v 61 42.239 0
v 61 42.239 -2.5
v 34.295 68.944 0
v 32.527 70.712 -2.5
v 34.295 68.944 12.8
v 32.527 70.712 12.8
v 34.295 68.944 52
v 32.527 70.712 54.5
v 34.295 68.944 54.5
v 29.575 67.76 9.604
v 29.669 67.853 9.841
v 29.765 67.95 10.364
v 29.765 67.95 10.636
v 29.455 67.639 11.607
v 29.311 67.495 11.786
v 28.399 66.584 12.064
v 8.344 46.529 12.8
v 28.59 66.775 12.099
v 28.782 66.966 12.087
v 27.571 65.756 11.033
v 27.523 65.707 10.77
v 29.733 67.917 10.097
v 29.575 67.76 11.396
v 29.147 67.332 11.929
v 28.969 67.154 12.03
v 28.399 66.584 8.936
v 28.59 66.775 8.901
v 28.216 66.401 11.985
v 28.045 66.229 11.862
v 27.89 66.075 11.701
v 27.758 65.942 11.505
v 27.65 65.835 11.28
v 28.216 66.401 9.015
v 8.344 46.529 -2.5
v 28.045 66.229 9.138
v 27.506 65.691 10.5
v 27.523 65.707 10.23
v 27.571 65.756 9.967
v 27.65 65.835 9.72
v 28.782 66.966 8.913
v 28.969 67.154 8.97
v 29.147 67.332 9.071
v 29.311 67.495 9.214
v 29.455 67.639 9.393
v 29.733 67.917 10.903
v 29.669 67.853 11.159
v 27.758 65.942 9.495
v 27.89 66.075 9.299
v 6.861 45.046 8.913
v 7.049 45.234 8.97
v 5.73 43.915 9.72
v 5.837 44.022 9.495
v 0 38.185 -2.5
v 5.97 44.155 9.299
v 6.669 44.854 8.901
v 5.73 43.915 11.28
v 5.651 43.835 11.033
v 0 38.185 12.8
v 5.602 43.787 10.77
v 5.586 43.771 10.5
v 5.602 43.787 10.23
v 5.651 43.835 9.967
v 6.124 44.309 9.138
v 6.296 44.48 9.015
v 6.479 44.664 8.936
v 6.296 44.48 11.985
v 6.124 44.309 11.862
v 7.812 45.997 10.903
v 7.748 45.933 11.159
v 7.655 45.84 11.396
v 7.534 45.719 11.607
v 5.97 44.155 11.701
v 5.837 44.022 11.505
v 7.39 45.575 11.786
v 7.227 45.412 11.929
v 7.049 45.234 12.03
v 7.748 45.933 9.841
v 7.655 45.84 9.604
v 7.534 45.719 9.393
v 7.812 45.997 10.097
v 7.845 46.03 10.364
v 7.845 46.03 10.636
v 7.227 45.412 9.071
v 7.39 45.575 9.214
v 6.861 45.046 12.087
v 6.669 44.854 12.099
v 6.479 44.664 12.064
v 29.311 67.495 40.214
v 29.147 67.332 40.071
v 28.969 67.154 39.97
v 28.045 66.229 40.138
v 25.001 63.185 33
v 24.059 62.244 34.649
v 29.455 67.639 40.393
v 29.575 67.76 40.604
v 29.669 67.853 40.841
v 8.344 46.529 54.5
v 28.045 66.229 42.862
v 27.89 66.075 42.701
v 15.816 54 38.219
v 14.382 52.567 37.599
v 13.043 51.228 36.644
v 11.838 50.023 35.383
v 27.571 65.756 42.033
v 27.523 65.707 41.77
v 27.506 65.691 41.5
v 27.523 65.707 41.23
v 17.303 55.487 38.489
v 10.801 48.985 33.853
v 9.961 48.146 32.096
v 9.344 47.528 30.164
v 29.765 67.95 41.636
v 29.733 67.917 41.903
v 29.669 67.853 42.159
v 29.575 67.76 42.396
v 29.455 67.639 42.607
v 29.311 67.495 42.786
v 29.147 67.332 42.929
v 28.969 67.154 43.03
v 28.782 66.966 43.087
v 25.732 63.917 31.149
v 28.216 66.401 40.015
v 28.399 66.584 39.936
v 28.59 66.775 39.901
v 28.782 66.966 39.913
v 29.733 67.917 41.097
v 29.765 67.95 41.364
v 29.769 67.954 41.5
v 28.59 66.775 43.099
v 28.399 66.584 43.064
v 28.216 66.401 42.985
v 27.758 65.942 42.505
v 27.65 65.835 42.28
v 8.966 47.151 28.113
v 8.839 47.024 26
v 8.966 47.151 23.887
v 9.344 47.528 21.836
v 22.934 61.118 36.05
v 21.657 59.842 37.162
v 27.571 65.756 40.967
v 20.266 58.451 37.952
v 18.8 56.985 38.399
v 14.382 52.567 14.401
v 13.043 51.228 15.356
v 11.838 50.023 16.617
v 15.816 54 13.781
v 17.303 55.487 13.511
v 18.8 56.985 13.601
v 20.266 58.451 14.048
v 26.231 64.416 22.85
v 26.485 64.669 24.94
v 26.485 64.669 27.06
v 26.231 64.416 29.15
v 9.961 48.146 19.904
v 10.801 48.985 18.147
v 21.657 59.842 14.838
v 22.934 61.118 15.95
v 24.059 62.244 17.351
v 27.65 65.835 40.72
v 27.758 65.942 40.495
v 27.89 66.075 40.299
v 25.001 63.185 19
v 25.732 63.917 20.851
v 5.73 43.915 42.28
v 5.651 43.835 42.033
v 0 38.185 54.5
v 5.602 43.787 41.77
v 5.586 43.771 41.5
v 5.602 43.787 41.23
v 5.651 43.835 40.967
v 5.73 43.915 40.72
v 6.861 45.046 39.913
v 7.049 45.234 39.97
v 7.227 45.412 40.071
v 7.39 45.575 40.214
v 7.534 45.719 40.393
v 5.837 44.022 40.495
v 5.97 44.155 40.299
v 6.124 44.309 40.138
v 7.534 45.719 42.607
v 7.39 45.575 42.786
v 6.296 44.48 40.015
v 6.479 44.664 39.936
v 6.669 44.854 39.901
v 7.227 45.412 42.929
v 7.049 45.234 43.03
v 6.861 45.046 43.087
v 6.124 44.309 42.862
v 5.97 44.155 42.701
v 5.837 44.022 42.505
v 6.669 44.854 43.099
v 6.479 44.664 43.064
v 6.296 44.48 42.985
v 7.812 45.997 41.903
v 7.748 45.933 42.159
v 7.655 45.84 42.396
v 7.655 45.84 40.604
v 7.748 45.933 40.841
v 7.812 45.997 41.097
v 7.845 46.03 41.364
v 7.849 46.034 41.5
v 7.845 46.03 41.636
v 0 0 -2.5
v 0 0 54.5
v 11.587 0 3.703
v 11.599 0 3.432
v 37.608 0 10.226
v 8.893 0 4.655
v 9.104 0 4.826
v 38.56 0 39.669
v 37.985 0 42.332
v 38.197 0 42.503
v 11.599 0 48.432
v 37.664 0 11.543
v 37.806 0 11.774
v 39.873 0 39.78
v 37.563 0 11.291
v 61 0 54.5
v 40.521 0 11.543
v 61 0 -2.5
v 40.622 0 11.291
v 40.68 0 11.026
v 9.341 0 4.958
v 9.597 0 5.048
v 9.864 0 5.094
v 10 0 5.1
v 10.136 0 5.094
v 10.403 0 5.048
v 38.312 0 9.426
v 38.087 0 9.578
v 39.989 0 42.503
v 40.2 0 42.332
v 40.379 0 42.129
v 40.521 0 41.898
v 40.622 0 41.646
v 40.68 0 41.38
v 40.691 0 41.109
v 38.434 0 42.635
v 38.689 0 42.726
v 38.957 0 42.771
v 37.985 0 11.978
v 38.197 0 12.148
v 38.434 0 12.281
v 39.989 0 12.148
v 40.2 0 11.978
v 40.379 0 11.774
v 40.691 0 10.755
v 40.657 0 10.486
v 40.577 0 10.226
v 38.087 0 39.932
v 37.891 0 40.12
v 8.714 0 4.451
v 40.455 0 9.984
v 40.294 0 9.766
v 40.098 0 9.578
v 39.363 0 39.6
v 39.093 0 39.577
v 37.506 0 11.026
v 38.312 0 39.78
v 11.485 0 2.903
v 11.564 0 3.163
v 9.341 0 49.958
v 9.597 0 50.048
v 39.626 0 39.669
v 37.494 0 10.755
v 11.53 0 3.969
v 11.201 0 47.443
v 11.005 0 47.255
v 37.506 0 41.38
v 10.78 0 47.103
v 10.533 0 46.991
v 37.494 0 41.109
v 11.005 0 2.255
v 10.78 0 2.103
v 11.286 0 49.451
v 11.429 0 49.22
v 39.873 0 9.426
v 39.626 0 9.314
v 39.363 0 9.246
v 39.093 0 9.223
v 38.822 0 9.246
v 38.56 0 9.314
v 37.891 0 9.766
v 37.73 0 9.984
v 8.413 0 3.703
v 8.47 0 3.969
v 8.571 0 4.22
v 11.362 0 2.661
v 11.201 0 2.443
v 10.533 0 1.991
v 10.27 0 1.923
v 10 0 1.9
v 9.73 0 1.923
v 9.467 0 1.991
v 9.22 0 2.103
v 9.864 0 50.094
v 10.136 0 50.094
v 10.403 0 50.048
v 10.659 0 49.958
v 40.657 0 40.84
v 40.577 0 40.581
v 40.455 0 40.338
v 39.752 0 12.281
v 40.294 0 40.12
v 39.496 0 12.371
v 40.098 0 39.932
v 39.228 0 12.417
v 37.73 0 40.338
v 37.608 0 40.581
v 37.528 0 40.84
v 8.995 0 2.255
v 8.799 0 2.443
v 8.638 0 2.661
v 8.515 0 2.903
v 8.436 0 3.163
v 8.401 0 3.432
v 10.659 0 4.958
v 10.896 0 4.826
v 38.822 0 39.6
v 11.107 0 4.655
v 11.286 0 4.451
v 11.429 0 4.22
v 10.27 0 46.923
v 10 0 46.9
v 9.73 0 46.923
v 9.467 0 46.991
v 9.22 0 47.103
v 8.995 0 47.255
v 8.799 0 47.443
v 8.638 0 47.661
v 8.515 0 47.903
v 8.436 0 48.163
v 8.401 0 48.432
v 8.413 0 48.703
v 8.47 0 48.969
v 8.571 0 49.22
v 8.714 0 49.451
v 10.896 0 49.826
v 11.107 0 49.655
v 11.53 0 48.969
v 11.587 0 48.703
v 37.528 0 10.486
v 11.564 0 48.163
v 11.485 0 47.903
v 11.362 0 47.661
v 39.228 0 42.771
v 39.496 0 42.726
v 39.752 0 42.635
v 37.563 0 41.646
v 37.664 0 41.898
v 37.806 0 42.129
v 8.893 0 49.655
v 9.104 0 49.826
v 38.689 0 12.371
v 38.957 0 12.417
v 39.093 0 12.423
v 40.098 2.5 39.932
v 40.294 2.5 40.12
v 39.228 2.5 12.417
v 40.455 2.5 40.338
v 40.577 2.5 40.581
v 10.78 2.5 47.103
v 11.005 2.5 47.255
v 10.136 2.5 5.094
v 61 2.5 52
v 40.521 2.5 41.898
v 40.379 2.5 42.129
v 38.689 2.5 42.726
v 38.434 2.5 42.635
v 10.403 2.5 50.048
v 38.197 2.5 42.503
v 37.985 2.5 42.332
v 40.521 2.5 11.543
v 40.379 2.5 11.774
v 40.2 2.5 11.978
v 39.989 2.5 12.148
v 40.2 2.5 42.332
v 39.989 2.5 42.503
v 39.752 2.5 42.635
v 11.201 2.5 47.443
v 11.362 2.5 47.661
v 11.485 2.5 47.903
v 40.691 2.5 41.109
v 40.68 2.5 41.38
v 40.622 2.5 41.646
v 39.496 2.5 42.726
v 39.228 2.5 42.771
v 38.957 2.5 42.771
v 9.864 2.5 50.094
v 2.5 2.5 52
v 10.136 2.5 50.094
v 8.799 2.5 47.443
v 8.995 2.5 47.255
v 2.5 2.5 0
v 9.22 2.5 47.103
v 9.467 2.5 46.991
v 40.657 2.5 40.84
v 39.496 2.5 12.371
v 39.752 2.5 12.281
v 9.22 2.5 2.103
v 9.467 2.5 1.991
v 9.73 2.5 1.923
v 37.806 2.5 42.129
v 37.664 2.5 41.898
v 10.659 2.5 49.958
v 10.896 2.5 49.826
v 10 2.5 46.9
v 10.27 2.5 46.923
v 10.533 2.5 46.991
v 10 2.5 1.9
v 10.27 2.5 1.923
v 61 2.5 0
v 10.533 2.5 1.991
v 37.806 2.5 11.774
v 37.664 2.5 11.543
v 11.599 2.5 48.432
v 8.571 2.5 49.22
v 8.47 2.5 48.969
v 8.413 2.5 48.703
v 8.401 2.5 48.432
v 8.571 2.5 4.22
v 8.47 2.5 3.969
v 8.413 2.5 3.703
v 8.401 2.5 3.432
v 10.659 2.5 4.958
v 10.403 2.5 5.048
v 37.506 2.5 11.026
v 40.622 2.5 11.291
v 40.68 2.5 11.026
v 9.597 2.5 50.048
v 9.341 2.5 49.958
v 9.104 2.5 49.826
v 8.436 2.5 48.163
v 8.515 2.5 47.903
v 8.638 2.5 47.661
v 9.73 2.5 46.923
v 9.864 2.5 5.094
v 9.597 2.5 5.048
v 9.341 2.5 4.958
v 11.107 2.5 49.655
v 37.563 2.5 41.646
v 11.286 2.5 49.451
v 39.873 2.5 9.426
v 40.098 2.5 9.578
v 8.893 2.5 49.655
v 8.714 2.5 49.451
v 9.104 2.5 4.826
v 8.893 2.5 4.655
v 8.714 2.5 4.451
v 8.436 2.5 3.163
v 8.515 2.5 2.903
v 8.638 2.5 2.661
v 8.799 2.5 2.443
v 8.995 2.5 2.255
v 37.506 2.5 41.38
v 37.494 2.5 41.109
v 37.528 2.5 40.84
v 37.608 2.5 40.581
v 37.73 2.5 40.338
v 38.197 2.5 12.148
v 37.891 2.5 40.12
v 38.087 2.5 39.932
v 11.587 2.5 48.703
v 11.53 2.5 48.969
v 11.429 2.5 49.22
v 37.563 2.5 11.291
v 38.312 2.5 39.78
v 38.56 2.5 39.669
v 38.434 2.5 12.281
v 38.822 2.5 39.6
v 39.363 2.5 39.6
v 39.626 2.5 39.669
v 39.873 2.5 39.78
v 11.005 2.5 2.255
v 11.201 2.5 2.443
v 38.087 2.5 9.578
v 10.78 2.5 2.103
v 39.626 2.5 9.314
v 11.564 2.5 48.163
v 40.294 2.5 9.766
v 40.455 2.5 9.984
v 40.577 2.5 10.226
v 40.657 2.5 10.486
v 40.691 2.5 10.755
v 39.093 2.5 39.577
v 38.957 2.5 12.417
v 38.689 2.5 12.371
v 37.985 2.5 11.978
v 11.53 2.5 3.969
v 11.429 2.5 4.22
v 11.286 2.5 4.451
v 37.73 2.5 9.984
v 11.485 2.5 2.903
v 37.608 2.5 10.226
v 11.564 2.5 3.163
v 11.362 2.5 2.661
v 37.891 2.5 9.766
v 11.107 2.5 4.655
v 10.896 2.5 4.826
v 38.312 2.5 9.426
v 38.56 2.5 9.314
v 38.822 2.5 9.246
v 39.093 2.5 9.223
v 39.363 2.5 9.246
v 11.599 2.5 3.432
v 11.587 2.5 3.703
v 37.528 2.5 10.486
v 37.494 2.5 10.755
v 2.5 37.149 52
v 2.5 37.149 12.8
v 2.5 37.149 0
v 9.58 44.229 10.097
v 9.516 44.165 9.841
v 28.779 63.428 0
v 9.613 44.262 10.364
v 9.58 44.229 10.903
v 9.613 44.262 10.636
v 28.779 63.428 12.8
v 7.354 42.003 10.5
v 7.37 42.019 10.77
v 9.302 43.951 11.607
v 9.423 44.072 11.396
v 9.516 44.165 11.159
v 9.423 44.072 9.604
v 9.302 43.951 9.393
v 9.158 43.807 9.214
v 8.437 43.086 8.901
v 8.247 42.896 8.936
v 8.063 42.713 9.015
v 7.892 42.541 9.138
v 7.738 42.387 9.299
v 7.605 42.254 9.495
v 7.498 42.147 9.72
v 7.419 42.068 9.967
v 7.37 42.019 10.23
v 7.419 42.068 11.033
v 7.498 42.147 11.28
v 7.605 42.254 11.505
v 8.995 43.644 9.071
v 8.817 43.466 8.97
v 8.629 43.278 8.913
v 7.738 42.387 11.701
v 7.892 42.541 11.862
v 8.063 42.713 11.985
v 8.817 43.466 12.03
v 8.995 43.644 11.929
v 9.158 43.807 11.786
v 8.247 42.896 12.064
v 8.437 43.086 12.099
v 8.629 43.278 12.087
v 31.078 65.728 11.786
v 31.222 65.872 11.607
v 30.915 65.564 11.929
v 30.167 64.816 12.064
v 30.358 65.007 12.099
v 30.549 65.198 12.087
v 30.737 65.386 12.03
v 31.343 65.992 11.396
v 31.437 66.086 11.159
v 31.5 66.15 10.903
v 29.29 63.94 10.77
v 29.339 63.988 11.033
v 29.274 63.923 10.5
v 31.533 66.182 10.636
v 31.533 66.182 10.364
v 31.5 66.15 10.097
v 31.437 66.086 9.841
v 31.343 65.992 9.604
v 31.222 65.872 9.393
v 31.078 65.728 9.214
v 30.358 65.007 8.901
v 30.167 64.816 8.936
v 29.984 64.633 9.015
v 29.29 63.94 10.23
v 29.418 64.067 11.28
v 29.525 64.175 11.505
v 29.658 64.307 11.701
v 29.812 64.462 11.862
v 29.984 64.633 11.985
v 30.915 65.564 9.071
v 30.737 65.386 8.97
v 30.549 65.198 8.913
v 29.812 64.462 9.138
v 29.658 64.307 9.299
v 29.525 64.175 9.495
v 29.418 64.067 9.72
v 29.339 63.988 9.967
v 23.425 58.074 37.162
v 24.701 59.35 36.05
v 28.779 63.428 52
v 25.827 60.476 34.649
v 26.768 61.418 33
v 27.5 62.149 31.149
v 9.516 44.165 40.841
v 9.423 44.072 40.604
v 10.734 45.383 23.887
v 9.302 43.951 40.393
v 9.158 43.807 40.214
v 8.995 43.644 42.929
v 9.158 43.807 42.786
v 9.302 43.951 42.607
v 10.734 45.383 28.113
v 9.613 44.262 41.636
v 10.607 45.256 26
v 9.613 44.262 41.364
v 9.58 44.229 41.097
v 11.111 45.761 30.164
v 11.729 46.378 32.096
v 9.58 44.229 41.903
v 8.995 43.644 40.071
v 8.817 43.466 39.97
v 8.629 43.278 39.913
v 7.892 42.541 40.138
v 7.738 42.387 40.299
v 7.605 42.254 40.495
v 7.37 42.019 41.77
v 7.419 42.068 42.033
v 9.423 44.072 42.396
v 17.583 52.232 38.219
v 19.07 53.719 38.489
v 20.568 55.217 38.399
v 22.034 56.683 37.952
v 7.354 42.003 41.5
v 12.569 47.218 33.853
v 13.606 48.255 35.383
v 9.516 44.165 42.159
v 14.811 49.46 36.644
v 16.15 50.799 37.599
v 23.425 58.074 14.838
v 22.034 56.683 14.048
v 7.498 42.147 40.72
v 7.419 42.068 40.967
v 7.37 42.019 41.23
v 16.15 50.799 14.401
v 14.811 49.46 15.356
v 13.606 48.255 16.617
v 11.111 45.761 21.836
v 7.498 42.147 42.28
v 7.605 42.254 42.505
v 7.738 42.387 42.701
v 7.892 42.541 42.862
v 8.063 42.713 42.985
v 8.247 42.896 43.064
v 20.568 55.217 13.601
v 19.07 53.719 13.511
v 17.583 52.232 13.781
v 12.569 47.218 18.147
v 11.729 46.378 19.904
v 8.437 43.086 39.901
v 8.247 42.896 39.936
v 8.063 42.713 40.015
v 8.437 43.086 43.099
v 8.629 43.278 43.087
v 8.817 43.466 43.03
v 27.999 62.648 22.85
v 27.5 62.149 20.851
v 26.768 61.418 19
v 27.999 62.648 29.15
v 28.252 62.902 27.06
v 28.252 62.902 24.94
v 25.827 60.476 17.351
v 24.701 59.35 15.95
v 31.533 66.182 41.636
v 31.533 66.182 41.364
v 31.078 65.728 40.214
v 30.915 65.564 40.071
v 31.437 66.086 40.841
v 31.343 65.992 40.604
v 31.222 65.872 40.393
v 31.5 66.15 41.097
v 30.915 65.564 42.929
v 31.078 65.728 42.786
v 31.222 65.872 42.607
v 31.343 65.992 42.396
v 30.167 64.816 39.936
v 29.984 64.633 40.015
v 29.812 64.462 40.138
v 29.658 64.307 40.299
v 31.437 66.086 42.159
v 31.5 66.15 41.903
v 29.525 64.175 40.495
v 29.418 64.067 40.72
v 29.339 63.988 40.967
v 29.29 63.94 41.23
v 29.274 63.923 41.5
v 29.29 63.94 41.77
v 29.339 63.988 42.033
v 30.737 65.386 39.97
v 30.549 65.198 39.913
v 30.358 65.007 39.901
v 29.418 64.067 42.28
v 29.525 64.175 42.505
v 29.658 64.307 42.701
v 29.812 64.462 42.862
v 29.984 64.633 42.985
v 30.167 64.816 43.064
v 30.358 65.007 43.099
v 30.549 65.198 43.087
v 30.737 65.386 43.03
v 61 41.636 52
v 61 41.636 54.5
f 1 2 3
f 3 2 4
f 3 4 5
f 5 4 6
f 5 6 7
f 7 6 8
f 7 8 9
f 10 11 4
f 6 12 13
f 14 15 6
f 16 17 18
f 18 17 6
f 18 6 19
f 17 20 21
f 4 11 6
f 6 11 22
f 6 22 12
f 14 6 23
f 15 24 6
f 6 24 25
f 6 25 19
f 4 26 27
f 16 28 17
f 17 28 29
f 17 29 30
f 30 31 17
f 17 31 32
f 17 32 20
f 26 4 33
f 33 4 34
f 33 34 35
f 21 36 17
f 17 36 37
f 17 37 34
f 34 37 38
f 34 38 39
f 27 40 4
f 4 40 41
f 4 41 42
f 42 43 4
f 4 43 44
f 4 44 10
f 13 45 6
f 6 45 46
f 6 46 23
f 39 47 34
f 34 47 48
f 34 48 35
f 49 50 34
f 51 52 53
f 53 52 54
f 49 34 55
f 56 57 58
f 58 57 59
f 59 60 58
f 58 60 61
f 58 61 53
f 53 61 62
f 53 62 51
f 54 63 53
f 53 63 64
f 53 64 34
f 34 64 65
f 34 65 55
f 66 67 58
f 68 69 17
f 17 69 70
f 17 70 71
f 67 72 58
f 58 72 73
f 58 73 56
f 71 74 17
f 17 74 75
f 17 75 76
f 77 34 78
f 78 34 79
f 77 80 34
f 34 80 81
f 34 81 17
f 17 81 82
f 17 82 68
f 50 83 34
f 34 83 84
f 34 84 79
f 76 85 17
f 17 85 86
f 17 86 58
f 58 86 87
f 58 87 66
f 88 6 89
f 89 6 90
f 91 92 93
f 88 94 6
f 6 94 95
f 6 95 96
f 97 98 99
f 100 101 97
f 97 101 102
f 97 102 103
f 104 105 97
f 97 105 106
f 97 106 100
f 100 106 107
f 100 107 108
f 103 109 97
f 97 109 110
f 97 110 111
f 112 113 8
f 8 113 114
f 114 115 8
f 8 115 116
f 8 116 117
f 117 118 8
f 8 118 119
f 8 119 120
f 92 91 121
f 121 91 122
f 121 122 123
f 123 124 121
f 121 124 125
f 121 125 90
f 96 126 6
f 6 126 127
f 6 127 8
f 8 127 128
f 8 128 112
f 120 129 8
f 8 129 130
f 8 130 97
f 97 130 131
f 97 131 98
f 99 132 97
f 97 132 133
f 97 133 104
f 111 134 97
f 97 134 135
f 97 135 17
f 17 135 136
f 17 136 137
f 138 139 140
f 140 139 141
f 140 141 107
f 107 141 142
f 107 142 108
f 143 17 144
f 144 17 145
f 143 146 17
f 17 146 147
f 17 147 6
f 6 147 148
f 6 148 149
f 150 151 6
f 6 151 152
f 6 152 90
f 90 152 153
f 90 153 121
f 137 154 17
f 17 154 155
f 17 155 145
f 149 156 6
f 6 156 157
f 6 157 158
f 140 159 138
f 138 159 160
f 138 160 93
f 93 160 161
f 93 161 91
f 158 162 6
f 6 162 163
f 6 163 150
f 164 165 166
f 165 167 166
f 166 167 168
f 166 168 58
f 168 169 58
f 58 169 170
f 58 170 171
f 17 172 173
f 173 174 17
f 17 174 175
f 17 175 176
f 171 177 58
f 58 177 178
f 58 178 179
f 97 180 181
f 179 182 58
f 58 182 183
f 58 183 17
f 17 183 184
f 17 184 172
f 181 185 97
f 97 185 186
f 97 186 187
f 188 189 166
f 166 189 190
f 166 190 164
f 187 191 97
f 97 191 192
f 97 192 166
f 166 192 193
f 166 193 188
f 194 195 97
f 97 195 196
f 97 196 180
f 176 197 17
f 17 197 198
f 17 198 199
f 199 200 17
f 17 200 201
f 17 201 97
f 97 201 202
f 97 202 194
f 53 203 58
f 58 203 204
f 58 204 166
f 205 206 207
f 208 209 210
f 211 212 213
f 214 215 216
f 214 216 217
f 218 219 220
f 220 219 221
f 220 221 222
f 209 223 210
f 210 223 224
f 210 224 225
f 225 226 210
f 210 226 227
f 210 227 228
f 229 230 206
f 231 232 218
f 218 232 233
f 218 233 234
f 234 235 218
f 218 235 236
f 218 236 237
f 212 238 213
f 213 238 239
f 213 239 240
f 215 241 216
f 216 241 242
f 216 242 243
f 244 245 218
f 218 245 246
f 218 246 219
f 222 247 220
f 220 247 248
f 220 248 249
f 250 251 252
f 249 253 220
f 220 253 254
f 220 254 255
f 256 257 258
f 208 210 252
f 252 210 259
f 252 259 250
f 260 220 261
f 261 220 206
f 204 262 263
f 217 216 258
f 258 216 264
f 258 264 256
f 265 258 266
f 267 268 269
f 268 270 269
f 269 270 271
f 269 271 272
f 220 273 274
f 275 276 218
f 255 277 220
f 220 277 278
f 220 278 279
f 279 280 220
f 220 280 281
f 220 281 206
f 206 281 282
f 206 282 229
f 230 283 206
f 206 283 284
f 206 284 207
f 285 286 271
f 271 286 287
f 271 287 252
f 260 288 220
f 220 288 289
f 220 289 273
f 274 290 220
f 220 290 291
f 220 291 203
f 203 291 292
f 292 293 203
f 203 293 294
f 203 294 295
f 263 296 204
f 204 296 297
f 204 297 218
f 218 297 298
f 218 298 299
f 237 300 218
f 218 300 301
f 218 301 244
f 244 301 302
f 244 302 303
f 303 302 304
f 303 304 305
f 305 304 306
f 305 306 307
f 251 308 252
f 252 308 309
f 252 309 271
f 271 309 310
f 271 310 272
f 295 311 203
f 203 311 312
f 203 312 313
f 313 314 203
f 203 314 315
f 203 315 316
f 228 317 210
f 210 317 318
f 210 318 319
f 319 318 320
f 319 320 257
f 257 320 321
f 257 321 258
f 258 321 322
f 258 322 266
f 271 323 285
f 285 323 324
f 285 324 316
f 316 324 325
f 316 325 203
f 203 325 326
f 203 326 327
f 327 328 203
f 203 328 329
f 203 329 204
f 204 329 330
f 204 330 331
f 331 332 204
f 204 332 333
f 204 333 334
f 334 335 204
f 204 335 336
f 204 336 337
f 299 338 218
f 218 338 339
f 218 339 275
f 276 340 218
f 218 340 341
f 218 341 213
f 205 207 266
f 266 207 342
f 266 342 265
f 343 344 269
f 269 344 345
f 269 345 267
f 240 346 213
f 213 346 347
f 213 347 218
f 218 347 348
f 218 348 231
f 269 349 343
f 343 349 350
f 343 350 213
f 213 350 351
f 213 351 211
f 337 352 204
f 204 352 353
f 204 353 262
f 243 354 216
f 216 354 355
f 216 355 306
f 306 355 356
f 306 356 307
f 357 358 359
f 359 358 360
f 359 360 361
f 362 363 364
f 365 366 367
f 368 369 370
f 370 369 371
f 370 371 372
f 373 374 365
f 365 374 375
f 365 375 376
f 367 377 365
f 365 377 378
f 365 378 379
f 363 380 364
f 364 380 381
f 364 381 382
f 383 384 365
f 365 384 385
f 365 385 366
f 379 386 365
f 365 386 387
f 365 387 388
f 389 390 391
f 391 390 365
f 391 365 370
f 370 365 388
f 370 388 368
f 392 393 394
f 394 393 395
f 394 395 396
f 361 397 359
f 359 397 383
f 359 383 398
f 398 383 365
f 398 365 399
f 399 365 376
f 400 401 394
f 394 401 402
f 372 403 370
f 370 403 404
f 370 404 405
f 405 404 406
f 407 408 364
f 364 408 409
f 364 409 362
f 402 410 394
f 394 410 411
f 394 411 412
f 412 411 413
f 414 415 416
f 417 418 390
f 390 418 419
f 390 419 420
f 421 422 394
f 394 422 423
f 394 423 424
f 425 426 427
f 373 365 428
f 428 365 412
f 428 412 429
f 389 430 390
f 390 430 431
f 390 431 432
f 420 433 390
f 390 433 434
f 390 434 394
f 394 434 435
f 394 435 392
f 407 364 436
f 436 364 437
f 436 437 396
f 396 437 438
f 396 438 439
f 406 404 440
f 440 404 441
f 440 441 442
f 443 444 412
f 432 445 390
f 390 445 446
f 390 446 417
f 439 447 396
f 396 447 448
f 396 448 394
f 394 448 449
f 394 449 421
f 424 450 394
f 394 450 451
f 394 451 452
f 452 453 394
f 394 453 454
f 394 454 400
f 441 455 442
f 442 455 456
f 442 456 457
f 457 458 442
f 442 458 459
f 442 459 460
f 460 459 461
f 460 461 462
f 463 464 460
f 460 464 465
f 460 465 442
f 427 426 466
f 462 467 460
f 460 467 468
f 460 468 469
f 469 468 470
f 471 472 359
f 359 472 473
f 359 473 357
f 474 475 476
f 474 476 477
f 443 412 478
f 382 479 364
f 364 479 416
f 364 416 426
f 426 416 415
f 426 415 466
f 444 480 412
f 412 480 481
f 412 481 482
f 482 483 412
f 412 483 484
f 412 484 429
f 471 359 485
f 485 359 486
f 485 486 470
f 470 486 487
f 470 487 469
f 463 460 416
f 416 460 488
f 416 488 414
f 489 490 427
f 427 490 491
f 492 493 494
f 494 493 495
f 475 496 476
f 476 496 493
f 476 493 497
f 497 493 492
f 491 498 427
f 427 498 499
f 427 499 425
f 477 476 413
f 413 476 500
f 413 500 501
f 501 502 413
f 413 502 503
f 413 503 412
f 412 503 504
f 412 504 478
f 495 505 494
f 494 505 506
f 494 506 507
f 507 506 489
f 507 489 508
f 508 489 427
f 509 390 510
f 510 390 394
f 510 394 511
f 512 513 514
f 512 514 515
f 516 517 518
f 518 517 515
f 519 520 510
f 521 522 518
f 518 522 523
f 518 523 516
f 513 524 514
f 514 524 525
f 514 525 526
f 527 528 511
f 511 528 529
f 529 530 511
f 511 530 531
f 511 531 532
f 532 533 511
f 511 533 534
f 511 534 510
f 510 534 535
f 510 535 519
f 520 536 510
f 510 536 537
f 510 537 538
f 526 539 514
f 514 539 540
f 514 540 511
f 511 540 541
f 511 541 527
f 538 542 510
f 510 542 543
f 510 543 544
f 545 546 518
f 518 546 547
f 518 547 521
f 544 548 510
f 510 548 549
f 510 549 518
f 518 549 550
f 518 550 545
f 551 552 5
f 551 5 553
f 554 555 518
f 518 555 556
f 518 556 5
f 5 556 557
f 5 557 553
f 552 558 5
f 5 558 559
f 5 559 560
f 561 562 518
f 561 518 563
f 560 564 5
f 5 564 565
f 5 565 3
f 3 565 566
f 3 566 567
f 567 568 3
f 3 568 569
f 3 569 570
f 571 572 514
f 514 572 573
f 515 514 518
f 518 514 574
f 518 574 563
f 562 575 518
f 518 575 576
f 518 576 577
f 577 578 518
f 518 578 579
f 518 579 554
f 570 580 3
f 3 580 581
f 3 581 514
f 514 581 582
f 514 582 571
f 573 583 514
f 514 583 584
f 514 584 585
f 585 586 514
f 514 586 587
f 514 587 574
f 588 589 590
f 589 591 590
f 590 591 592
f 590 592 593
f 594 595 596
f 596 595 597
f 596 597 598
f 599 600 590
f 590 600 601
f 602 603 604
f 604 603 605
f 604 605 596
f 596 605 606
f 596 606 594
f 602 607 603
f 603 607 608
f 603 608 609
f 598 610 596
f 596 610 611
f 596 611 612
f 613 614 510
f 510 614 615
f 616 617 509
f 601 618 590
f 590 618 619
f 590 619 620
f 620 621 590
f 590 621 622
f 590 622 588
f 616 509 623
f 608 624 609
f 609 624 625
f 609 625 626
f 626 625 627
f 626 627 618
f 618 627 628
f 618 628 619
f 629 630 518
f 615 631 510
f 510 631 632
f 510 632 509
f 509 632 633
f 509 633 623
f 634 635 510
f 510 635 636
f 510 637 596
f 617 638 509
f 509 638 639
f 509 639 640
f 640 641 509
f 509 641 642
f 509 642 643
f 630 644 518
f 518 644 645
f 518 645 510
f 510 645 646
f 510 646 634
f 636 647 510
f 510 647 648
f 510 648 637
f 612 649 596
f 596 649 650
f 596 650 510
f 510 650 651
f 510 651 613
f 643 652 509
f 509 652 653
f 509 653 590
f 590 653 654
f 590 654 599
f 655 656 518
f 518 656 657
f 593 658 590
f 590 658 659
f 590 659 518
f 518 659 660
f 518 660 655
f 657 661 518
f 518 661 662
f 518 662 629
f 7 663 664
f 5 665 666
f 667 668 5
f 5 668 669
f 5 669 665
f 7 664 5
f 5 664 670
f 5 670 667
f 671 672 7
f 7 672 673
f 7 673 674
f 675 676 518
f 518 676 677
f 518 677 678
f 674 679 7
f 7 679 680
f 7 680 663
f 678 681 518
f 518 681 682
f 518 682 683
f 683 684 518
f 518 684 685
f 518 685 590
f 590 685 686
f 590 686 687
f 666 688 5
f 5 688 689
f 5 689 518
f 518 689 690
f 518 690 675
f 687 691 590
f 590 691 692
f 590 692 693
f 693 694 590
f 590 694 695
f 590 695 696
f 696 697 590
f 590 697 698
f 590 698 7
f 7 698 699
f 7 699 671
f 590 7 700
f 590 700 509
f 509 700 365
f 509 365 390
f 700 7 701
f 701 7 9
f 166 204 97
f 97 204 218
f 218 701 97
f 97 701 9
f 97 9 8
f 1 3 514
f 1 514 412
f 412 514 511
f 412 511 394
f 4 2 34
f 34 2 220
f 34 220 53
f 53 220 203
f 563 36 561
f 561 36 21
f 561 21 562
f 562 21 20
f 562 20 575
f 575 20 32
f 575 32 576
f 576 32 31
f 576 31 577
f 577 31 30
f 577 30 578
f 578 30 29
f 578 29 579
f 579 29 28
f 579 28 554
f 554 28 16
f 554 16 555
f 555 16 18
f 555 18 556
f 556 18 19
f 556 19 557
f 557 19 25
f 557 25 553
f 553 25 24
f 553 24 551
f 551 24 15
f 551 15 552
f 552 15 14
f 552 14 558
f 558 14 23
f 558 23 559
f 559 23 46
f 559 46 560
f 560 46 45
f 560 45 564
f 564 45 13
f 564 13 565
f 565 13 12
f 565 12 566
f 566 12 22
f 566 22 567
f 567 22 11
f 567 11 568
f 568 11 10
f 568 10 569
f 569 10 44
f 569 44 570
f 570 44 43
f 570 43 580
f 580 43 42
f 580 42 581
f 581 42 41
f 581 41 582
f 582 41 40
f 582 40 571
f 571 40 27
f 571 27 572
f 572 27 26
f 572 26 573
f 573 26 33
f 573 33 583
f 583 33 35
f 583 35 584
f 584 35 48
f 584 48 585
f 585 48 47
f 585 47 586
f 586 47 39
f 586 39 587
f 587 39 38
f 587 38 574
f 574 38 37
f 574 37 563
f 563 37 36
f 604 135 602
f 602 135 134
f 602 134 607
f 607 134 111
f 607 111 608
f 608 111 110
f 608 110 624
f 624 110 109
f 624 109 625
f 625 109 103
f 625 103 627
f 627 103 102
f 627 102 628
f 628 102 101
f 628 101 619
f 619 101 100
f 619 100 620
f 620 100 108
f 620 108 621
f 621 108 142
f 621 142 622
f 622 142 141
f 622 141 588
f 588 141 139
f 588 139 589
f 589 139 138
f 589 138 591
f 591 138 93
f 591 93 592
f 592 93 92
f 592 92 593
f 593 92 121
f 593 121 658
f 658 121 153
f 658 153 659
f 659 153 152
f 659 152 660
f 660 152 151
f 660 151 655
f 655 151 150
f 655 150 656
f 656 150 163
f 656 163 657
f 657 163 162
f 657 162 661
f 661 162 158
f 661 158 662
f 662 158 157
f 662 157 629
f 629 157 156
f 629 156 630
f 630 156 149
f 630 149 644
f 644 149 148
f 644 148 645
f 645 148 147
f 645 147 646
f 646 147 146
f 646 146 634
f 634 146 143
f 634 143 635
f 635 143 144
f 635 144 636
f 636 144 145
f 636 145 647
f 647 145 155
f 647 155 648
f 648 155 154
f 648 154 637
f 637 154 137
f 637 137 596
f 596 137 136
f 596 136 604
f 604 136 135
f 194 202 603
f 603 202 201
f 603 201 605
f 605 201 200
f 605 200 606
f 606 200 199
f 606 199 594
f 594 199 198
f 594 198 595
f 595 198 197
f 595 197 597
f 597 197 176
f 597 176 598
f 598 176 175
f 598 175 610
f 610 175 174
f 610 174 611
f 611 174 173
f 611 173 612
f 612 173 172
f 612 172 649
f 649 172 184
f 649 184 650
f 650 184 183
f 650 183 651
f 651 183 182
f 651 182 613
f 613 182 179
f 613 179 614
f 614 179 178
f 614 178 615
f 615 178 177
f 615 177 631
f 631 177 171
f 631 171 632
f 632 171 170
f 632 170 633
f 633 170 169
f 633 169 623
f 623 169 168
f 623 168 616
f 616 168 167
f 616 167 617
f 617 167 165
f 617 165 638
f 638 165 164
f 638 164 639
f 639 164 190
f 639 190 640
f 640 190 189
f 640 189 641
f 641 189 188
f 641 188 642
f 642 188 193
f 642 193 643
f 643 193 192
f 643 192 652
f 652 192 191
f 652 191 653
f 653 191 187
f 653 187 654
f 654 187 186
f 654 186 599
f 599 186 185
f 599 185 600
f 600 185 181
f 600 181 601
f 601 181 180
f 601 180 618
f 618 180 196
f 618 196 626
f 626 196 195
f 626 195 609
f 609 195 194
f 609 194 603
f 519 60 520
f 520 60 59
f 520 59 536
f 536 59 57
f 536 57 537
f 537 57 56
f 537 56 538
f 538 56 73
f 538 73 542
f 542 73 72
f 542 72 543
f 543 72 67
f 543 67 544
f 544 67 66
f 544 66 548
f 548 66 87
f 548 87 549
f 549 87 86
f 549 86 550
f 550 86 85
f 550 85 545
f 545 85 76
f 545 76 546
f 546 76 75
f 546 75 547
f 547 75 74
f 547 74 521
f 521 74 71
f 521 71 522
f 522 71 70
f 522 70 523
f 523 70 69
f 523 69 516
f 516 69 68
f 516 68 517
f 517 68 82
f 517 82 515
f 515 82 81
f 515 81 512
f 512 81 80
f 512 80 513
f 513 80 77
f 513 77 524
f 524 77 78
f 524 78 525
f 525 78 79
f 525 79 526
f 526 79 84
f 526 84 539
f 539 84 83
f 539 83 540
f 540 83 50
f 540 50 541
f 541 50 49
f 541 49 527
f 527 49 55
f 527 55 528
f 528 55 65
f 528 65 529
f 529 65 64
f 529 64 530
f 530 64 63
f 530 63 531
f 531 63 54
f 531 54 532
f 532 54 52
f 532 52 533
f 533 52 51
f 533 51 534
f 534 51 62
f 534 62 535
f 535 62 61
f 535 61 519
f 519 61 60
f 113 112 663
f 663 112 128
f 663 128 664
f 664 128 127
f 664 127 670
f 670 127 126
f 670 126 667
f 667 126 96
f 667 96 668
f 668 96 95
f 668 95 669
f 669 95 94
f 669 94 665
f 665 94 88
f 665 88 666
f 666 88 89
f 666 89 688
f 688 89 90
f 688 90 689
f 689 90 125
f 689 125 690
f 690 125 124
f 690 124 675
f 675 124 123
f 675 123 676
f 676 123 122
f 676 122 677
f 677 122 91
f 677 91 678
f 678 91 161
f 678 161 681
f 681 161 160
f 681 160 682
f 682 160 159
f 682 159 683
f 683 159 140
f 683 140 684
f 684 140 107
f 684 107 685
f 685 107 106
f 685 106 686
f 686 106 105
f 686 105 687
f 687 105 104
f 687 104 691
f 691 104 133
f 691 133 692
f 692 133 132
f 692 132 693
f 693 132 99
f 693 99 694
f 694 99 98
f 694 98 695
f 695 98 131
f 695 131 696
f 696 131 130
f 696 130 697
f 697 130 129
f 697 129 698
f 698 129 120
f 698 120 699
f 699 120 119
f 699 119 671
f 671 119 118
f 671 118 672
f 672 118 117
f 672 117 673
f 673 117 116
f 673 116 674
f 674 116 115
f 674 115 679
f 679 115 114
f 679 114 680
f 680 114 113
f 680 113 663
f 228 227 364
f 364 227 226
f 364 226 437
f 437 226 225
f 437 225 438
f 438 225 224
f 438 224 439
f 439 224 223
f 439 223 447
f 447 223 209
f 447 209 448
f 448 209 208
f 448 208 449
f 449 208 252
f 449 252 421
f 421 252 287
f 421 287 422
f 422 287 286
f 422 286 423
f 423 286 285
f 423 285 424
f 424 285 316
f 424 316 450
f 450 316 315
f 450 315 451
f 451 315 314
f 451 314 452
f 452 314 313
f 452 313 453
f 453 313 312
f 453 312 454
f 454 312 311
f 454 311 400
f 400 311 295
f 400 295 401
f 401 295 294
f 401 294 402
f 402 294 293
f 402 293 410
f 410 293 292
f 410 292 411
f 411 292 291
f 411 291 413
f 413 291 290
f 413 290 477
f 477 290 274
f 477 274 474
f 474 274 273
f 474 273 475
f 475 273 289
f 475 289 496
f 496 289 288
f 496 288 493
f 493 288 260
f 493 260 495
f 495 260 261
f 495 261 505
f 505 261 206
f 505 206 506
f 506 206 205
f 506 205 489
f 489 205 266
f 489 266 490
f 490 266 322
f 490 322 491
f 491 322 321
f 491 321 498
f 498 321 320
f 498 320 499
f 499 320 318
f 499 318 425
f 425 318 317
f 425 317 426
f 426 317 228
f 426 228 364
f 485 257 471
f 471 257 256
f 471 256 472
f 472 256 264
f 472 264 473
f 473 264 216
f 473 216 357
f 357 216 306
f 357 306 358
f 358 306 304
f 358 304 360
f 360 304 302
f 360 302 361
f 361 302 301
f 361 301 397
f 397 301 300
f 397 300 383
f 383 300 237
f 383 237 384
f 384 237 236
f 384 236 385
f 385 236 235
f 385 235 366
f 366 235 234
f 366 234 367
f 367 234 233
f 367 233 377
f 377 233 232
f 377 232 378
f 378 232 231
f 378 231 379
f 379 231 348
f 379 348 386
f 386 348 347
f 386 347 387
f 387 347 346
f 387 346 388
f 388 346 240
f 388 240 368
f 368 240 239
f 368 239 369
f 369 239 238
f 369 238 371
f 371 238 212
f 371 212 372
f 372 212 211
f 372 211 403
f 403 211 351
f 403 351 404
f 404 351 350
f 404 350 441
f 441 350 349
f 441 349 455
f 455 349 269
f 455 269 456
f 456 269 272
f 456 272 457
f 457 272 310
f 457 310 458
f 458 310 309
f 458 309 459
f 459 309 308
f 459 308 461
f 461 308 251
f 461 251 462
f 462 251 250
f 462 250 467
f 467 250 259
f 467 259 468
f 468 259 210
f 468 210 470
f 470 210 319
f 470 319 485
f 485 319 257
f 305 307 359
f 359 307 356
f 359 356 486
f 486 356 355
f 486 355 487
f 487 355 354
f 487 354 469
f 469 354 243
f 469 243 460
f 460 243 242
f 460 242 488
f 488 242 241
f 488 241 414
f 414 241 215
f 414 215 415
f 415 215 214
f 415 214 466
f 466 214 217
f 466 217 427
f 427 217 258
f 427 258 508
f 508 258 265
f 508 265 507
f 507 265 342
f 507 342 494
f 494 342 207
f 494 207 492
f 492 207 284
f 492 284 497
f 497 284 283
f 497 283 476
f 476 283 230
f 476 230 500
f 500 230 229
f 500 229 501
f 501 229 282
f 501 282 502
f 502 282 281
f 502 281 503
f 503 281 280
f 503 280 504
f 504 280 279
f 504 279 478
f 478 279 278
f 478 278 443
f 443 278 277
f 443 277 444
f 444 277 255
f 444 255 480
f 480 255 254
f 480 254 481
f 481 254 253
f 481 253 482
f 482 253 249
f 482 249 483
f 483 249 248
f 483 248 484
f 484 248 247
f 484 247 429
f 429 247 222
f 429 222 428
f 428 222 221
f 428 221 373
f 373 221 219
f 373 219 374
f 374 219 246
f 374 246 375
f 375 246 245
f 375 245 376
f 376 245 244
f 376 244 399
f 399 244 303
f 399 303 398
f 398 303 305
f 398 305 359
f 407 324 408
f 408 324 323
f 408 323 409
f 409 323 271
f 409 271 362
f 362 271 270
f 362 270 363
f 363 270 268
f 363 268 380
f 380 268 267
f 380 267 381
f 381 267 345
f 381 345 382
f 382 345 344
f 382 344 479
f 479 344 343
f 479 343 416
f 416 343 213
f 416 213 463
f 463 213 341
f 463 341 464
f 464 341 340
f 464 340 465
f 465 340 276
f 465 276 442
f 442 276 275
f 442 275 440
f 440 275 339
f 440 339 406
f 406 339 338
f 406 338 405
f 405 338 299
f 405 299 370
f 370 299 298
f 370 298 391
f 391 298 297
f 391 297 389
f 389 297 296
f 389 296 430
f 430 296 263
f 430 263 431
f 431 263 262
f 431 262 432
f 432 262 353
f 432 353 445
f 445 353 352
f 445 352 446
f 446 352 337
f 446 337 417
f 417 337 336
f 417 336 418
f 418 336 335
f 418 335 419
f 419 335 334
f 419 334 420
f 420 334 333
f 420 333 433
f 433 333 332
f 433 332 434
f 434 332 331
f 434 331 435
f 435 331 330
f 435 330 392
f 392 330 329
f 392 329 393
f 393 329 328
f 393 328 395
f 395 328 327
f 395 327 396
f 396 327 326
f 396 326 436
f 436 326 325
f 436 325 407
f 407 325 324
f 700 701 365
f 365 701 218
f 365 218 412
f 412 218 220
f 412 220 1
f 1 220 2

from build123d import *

# Parameters (mm, degrees)
EXTRUDE_1_DEPTH     = 52
EXTRUDE_2_DEPTH     = 2.5
EXTRUDE_3_DEPTH     = 2.5
SKETCH_4_R          = 1.6
SKETCH_4_R_2        = 12.5
CUT_EXTRUDE_1_DEPTH = 5
SKETCH_6_R          = 1.6
CUT_EXTRUDE_2_DEPTH = 5
CUT_EXTRUDE_3_DEPTH = 136.636948309


with BuildPart() as part:
    # 草图1 → 凸台-拉伸1 (new body)
    with BuildSketch(Plane.XY):
        Polygon((32.526911935, 70.711610456), (0, 38.184698521), (0, 0), (100.73852239, 0), (100.73852239, 2.5), (94.853312534, 2.5), (2.5, 2.5), (2.5, 37.149164615), (32.494813779, 67.143978395), (34.294678888, 68.943843503), align=None)
    extrude(amount=EXTRUDE_1_DEPTH)

    # 草图2 → 凸台-拉伸2 (add)
    with BuildSketch(Plane.XY.offset(52)):
        Polygon((32.526911935, 70.711610456), (0, 38.184698521), (0, 0), (100.73852239, 0), (100.73852239, 1), (34.294678888, 68.943843503), align=None)
    extrude(amount=EXTRUDE_2_DEPTH)

    # 草图3 → 凸台-拉伸3 (add)
    with BuildSketch(Plane(origin=(0, 0, 0), x_dir=(-1, 0, 0), z_dir=(0, 0, -1))):
        Polygon((-32.526911935, 70.711610456), (0, 38.184698521), (0, 0), (-100.73852239, 0), (-100.73852239, 2.5), (-34.294678888, 68.943843503), align=None)
    extrude(amount=EXTRUDE_3_DEPTH)

    # 草图4 → 切除-拉伸1 (cut)
    with BuildSketch(Plane(origin=(-19.092349261, 19.092349261, 0), x_dir=(0, 0, 1), z_dir=(-0.7071067811865468, 0.7071067811865483, 0))):
        with Locations(Location((10.5, 67.500659262, 0), (0, 0, 270))):
            Circle(SKETCH_4_R)
        with Locations(Location((41.5, 67.500659262, 0), (0, 0, 270))):
            Circle(SKETCH_4_R)
        with Locations(Location((10.5, 36.500659262, 0), (0, 0, 270))):
            Circle(SKETCH_4_R)
        with Locations(Location((41.5, 36.500659262, 0), (0, 0, 270))):
            Circle(SKETCH_4_R)
        with Locations(Location((26, 52.000659262, 0), (0, 0, 270))):
            Circle(SKETCH_4_R_2)
    extrude(amount=-CUT_EXTRUDE_1_DEPTH, mode=Mode.SUBTRACT)

    # 草图6 → 切除-拉伸2 (cut)
    with BuildSketch(Plane.XZ):
        with Locations(Location((10, 48.5, 0), (0, 0, 270))):
            Circle(SKETCH_6_R)
        with Locations(Location((10, 3.5, 0), (0, 0, 270))):
            Circle(SKETCH_6_R)
        with Locations(Location((39.092556486, 41.177216573, 0), (0, 0, 270))):
            Circle(SKETCH_6_R)
        with Locations(Location((39.092556486, 10.822783427, 0), (0, 0, 270))):
            Circle(SKETCH_6_R)
    extrude(amount=-CUT_EXTRUDE_2_DEPTH, mode=Mode.SUBTRACT)

    # 草图7 → 切除-拉伸3 (cut, through all)
    with BuildSketch(Plane.XY.offset(54.5)):
        Polygon((61, 42.23852239), (61, 0), (103.406412913, 0), (103.406412913, 12.738477269), align=None)
    extrude(amount=-CUT_EXTRUDE_3_DEPTH, mode=Mode.SUBTRACT)


solid = part.part
